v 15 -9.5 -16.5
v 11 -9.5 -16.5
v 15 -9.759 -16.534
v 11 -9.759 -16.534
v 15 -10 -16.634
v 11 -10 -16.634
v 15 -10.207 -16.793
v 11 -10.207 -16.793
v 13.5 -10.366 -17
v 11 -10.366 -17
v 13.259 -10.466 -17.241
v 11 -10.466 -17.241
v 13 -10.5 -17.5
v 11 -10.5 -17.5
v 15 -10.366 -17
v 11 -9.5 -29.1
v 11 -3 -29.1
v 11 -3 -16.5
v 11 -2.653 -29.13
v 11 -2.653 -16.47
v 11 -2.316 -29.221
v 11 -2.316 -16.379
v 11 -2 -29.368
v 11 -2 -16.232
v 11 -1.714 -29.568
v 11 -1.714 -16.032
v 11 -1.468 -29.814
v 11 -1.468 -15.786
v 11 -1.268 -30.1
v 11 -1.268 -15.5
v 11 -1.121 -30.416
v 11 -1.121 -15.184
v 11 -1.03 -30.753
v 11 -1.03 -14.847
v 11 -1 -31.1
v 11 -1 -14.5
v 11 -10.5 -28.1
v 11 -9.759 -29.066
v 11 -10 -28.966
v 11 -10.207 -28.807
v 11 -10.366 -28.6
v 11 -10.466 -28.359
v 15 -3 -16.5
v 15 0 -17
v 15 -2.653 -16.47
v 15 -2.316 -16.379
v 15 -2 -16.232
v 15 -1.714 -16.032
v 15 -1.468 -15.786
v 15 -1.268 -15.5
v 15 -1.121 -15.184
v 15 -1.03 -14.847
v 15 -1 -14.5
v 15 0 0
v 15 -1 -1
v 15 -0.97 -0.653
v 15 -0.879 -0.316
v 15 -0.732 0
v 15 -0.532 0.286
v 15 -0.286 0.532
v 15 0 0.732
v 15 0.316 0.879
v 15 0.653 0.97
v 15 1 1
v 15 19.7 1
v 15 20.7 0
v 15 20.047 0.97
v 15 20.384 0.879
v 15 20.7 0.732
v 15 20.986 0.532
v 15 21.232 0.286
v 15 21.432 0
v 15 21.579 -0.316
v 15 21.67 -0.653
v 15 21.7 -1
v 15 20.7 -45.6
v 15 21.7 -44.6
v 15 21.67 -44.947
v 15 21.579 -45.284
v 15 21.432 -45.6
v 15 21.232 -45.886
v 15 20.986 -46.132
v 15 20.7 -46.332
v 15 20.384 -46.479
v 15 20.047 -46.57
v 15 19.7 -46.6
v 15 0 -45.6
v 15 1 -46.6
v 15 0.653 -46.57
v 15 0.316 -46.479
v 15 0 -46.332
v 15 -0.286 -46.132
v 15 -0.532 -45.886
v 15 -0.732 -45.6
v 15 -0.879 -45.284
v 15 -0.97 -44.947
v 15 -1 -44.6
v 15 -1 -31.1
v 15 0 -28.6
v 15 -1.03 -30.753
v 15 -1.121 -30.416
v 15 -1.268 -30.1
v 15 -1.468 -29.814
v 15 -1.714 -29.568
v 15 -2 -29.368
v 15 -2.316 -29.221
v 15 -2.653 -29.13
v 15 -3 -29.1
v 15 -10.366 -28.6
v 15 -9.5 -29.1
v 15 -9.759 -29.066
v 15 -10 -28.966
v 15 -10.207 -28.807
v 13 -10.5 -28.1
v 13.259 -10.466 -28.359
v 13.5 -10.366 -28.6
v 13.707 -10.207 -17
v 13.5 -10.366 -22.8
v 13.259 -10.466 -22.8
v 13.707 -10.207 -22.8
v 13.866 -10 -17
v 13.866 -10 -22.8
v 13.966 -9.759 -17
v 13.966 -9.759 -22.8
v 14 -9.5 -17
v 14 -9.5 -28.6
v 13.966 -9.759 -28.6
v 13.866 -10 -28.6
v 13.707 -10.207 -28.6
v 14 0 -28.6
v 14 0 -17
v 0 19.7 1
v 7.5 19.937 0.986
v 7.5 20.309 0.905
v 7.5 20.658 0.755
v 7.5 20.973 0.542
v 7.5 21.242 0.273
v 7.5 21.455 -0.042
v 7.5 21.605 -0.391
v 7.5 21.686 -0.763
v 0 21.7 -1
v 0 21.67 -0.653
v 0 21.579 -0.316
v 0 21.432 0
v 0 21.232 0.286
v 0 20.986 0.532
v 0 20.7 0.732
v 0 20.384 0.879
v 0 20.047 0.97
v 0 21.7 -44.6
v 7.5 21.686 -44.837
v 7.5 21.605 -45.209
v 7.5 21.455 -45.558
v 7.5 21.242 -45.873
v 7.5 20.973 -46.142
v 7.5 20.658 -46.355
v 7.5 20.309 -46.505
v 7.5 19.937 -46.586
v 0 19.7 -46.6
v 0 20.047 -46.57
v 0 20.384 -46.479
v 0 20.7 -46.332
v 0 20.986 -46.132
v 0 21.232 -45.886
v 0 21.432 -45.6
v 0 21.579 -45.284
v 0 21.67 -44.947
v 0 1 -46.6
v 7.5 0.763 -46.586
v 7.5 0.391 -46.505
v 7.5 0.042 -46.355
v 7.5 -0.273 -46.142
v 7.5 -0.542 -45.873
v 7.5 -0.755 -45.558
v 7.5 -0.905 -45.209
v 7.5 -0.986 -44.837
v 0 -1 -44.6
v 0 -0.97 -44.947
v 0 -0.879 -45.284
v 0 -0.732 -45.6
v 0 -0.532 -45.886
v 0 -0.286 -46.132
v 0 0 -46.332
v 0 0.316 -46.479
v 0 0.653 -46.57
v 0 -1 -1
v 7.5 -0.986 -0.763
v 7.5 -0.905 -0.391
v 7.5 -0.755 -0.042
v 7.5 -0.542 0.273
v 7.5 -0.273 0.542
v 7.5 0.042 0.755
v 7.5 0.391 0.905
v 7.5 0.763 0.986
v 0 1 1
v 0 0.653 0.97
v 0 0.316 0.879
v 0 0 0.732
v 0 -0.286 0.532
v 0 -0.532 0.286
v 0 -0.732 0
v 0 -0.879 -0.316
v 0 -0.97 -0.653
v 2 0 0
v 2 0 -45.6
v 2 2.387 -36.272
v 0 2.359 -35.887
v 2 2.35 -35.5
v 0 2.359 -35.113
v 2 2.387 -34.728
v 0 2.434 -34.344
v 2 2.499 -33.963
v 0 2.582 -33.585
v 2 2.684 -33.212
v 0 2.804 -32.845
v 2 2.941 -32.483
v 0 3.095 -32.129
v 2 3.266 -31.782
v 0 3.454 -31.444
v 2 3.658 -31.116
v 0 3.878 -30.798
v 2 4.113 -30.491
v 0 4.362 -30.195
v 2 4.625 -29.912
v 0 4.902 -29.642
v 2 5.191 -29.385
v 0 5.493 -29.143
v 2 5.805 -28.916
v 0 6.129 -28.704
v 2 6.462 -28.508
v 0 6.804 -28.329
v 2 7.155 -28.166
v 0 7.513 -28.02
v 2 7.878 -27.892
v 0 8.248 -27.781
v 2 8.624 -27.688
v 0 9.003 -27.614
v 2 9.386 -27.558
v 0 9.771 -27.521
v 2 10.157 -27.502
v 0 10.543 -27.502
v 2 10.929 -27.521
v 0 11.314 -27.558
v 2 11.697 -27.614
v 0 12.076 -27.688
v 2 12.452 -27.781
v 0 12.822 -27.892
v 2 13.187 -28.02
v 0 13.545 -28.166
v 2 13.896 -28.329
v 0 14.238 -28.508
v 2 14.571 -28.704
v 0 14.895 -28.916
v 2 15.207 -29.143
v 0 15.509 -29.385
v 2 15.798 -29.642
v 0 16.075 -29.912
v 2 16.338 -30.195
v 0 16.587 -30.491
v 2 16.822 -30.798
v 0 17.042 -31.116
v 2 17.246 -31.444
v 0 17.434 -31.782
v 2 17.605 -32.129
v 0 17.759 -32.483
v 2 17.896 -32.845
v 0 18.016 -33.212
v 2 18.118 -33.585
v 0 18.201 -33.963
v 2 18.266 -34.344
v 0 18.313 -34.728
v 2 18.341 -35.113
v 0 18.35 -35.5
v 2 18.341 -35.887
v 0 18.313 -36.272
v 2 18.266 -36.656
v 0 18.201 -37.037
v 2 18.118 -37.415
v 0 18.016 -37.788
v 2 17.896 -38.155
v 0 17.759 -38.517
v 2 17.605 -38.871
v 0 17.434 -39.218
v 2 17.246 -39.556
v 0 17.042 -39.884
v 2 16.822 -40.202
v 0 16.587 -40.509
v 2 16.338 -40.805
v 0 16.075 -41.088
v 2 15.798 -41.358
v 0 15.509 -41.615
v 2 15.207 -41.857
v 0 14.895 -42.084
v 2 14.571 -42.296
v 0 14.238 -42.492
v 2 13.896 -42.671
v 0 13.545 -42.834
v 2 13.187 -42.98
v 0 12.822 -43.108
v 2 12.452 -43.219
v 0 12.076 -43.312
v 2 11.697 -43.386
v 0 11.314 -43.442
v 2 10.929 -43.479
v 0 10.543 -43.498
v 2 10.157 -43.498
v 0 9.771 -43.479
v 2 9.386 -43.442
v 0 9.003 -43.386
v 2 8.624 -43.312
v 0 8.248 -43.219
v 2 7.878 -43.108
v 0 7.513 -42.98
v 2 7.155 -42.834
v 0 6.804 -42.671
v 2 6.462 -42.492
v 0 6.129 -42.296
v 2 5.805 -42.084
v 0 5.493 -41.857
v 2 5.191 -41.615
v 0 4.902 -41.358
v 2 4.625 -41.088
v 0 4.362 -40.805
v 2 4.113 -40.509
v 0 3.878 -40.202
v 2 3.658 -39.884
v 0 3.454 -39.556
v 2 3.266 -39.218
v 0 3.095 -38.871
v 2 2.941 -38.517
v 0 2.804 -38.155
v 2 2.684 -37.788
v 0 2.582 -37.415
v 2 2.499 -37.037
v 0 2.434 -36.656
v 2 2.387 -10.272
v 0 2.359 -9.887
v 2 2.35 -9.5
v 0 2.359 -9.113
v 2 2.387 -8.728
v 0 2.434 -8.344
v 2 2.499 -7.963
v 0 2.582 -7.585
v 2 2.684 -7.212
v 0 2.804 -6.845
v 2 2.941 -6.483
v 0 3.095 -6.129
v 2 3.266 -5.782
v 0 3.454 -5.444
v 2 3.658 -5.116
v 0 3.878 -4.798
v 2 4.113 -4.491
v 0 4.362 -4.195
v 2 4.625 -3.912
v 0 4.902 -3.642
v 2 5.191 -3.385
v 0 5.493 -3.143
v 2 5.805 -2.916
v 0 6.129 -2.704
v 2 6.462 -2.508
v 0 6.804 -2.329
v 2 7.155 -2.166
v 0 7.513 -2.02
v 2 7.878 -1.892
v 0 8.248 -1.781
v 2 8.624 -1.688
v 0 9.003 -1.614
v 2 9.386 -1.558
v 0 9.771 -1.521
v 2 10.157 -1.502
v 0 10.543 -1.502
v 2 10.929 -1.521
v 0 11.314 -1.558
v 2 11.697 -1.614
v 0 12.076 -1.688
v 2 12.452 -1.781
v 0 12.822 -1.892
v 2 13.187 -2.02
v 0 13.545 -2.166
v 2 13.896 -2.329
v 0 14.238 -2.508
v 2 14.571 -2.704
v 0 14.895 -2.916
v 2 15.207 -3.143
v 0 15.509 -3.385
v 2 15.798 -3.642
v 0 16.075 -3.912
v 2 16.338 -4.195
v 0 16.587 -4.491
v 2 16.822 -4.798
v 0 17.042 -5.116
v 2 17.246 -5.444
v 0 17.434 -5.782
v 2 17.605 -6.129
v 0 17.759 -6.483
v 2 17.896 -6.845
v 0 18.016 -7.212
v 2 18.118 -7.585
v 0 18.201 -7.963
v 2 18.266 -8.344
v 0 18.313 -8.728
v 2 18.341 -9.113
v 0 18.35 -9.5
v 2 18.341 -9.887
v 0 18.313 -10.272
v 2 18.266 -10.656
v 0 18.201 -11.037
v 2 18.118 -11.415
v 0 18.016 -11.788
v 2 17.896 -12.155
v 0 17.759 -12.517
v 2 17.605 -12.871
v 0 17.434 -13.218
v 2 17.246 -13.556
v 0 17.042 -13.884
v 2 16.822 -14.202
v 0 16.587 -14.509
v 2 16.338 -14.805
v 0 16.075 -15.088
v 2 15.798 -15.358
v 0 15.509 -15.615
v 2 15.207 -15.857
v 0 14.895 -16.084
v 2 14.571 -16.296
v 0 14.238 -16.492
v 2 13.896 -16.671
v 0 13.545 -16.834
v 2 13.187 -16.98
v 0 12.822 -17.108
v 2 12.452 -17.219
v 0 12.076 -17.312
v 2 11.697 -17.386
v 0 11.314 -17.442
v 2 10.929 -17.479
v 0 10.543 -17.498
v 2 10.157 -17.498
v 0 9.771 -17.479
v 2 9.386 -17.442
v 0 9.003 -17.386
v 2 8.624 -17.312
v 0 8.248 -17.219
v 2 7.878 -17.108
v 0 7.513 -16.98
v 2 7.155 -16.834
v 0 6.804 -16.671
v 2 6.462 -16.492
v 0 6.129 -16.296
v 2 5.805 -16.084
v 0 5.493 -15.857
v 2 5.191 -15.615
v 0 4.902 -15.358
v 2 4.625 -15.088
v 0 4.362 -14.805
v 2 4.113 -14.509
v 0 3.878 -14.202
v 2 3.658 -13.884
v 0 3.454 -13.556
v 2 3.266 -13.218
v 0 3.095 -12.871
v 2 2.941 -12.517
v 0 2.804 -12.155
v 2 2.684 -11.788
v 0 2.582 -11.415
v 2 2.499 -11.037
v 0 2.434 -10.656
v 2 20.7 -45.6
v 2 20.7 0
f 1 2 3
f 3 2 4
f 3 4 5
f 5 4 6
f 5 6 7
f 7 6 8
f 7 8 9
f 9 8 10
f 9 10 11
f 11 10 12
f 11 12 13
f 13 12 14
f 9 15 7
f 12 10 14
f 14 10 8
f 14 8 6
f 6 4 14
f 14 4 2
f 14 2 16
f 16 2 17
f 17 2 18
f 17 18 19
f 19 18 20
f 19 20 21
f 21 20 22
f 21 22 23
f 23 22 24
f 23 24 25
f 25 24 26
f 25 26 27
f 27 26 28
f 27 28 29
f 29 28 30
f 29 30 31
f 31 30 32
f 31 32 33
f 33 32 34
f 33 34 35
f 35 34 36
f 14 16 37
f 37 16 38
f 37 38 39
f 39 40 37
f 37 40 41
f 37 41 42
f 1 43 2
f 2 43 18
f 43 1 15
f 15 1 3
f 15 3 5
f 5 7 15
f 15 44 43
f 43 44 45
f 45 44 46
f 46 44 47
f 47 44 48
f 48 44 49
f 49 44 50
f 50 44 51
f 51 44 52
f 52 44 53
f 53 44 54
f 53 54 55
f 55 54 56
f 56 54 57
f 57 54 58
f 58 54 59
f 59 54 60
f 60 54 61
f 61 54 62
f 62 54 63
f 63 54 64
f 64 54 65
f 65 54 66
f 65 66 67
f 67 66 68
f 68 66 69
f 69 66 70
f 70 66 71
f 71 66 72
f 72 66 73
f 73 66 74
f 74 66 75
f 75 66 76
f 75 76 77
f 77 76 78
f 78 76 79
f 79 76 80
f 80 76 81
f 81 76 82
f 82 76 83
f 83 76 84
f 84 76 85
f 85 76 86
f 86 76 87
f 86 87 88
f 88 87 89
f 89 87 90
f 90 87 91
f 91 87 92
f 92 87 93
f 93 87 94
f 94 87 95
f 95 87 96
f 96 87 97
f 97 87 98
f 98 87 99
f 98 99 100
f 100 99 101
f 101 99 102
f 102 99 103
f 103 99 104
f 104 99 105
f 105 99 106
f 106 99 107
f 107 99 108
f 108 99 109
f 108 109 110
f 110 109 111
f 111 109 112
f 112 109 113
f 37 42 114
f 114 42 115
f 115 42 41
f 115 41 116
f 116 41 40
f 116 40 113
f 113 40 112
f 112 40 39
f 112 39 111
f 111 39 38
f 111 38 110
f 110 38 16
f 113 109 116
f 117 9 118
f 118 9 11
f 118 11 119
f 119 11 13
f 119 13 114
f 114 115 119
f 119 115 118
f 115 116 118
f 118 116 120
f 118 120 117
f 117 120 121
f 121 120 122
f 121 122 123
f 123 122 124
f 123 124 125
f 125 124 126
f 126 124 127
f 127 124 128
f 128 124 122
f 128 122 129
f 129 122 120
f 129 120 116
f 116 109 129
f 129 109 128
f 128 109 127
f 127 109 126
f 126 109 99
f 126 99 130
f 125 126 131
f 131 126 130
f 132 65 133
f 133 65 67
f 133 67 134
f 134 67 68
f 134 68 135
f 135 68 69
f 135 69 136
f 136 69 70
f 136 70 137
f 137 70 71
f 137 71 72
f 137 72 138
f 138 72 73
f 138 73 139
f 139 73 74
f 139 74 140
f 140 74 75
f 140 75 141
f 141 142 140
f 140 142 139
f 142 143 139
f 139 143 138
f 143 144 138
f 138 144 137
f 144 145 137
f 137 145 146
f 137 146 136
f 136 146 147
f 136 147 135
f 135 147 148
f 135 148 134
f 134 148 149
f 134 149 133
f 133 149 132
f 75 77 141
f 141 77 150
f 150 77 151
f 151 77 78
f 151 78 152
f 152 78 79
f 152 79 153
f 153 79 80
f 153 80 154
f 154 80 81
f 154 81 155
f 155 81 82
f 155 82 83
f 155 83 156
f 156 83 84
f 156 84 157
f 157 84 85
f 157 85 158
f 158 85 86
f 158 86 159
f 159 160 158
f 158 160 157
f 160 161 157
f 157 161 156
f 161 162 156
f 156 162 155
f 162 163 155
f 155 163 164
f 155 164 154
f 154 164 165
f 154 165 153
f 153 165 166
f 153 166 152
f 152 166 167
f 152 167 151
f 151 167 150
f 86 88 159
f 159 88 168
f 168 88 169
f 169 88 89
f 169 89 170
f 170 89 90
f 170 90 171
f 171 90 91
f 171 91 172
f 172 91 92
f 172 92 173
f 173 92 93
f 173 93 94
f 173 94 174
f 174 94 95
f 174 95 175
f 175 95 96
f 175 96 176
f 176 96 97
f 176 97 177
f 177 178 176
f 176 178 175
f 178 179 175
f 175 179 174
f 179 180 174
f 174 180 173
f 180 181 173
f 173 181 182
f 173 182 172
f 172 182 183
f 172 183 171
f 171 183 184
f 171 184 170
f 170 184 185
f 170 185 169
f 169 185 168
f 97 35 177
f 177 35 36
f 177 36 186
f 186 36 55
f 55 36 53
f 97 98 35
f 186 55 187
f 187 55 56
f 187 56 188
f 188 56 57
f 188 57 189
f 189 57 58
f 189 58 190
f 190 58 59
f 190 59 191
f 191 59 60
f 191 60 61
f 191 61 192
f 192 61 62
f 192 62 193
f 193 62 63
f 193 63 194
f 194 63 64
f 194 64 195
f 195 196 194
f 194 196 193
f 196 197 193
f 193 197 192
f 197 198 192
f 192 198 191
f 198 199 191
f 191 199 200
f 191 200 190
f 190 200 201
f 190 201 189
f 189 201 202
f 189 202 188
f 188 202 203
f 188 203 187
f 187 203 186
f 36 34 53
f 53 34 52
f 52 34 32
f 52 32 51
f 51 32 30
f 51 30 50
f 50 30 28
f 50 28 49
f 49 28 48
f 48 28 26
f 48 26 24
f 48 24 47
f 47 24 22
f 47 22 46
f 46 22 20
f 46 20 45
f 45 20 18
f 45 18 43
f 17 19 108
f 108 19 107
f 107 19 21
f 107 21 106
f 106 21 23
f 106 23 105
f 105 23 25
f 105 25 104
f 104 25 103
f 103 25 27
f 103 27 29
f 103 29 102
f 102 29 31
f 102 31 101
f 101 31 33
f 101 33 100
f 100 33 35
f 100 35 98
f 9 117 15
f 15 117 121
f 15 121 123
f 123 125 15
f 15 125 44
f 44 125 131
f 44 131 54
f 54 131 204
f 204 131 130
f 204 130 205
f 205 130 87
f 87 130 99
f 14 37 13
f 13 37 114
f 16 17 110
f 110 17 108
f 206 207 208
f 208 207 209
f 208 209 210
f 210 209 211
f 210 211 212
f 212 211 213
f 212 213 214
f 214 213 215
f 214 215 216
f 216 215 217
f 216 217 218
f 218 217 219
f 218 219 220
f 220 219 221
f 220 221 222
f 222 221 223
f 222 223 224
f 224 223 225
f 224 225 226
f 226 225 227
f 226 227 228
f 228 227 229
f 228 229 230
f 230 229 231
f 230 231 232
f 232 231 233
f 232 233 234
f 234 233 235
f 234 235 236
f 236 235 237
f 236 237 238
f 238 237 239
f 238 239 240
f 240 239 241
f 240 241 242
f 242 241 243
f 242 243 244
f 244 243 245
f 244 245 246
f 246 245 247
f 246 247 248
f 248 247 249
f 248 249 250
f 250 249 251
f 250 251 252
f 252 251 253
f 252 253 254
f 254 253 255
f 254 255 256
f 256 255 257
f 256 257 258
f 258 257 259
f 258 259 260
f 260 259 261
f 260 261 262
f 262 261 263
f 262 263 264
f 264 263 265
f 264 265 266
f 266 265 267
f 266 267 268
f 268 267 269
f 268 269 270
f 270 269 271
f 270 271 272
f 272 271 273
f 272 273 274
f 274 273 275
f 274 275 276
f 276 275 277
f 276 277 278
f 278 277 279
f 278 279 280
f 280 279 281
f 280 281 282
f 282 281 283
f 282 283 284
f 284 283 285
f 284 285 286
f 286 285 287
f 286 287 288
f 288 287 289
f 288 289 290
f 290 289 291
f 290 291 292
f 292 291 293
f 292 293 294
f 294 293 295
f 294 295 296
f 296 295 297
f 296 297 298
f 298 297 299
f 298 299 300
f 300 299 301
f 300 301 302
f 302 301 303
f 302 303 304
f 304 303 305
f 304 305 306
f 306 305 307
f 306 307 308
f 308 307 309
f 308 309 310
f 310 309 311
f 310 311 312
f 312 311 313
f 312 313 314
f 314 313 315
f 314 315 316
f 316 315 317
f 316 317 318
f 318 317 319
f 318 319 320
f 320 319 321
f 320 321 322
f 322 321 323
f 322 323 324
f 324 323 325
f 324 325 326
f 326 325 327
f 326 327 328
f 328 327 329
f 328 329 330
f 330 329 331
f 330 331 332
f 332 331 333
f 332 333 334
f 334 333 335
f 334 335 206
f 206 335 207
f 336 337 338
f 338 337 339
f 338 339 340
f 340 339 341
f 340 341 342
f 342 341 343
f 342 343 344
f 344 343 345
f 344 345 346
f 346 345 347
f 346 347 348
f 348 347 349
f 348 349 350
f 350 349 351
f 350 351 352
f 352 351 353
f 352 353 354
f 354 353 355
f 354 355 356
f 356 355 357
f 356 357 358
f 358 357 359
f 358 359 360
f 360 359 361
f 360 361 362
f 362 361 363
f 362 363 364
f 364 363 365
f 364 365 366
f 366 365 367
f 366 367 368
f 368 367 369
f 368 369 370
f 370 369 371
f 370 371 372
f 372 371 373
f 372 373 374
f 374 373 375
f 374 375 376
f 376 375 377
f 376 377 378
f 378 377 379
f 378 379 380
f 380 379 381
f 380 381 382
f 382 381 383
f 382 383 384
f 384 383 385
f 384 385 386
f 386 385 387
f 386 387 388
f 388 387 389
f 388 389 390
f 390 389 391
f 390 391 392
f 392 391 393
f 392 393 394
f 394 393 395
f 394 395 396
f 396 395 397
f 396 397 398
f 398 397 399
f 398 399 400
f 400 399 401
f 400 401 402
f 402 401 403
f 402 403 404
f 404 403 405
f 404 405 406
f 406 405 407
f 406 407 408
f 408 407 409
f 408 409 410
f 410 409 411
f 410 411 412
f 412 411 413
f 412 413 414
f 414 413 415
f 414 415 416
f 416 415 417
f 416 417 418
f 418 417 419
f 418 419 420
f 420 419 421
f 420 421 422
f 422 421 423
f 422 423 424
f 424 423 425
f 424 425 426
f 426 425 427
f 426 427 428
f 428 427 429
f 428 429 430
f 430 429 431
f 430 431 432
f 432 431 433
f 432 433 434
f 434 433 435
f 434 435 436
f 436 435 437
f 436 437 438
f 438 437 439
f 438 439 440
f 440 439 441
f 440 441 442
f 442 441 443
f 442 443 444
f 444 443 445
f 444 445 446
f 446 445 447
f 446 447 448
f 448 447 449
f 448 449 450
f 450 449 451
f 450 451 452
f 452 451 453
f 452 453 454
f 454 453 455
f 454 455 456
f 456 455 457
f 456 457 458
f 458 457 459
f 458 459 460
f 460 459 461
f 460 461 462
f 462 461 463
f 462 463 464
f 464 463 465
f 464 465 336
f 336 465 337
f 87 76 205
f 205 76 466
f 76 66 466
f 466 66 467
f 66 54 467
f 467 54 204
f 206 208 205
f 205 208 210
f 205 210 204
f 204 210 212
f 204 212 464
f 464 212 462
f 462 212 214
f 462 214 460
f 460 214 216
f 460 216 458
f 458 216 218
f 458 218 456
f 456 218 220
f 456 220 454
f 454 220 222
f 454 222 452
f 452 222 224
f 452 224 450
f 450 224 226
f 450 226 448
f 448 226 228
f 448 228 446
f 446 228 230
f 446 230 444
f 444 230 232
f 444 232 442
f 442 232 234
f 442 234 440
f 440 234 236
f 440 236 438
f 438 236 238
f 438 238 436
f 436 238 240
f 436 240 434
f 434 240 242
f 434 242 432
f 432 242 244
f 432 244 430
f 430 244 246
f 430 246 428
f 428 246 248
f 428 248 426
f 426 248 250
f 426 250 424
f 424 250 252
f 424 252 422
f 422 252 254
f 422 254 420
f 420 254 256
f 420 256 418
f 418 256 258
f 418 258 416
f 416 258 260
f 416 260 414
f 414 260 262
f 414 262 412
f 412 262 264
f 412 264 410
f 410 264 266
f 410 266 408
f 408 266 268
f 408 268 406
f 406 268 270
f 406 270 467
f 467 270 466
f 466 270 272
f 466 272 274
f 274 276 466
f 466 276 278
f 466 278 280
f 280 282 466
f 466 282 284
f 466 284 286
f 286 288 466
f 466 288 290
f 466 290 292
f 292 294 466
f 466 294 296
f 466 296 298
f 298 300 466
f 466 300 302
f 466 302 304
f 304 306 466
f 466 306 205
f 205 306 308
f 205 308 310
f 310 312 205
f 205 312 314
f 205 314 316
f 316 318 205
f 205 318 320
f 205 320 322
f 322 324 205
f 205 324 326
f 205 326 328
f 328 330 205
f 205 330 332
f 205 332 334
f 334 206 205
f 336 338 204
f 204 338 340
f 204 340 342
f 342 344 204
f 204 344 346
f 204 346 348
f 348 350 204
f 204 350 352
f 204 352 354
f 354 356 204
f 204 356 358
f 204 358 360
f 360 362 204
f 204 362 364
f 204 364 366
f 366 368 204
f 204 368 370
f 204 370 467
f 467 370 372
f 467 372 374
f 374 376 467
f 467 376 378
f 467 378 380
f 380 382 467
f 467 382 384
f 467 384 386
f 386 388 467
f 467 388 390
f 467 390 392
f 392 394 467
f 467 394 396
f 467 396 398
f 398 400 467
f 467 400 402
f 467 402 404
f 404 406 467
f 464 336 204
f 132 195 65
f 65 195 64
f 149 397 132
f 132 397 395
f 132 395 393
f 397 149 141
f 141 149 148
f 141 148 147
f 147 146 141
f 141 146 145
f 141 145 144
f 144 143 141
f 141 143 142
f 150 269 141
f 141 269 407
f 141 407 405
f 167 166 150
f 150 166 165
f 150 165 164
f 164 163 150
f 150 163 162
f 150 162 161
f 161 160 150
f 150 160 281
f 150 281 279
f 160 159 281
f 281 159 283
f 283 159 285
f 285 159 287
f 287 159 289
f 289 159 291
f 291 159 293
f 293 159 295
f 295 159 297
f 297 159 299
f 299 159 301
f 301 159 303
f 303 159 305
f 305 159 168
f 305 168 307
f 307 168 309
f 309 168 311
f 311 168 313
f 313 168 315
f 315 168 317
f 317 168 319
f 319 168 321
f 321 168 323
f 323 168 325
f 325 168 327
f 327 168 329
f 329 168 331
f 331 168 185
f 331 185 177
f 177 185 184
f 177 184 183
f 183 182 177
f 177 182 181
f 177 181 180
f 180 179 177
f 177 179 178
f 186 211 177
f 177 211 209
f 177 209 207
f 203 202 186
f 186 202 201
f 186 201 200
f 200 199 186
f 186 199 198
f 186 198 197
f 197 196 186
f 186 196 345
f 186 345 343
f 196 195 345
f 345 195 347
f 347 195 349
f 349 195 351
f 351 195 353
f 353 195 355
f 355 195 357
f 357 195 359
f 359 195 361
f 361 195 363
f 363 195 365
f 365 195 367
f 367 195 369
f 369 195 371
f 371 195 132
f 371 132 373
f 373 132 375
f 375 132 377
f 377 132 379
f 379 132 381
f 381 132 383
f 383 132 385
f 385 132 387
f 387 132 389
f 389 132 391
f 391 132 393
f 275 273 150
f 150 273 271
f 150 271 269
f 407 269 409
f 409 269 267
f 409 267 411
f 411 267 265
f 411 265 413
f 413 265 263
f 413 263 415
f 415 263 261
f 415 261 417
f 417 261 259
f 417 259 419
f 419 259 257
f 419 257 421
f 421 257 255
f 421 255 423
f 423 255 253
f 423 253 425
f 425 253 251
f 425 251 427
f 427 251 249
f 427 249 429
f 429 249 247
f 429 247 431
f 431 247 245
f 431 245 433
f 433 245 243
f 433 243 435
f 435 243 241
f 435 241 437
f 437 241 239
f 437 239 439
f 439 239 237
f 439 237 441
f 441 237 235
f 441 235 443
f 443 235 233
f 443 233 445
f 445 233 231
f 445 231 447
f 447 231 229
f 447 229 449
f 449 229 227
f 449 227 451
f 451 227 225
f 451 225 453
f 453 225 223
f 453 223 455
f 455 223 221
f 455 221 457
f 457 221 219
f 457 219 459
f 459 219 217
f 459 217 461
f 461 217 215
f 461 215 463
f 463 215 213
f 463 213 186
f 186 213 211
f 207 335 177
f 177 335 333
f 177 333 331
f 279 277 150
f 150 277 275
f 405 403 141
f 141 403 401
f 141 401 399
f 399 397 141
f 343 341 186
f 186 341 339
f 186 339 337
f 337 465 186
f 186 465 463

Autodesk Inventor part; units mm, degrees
ref_plane "YZ Plane" through (0, 0, 0) normal (1, 0, 0) x (0, 1, 0)
ref_plane "XZ Plane" through (0, 0, 0) normal (0, 1, 0) x (-1, 0, 0)
ref_plane "XY Plane" through (0, 0, 0) normal (0, 0, 1) x (1, 0, 0)
sketch "Sketch1" plane through (0, 0, 0) normal (1, 0, 0) x (0, 1, 0)
  line L0 (0, 0) -> (20.7, 0)
  line L1 (20.7, 0) -> (20.7, -45.6)
  line L2 (20.7, -45.6) -> (0, -45.6)
  line L3 (0, -45.6) -> (0, 0)
  circle A0 centre (10.35, -9.5) radius 8
  circle A1 centre (10.35, -35.5) radius 8
  line L4 (21.7, -46.6) -> (21.7, 1)
  line L5 (21.7, 1) -> (-1, 1)
  line L6 (-1, 1) -> (-1, -46.6)
  line L7 (-1, -46.6) -> (21.7, -46.6)
  dimension "Breite" = 20.7
  dimension "Länge" = 45.6
  dimension "Kreise1" = 16
  dimension "BreiteBisKreise1" = 9.5
  dimension "LangeBisKreise" = 10.35
  dimension "KreiseCenter1BisKreiseCenter2" = 26
  dimension "Kreise2" = 16
  dimension "LangeBisKreise2" = 10.35
  dimension "d14" = 1
extrude "Extrusion1" add sketch "Sketch1" along normal blind 15 contours L0 L1 L2 L3 | A0 | A1
extrude "Extrusion2" add sketch "Sketch1" along normal up to surface (15 mm away) contours L7 L6 L5 L4
sketch "Sketch2" plane through (15, 0, 0) normal (1, 0, 0) x (0, 0, -1)
  line L0 (0, 20.7) -> (45.6, 20.7) projected
  line L1 (56.12, 0) -> (-10.52, 0) projected
  line L2 (45.6, 20.7) -> (45.6, 0) projected
  line L3 (0, -5.54) -> (0, 26.24) projected
  line L4 (0, 20.7) -> (45.6, 20.7)
  line L5 (45.6, 20.7) -> (45.6, 0)
  line L6 (45.6, 0) -> (0, 0)
  line L7 (0, 0) -> (0, 20.7)
extrude "Extrusion3" cut sketch "Sketch2" against normal blind 13
extrude "Extrusion4" cut sketch "Sketch1" along normal blind 11 contours A0 | A1
sketch "Sketch3" plane through (15, 0, 0) normal (1, 0, 0) x (0, 0, -1)
  line L0 (45.6, 20.7) -> (45.6, 0) projected
  line L1 (45.6, 0) -> (0, 0) projected
  line L2 (0, 0) -> (0, 20.7) projected
  line L3 (0, 20.7) -> (45.6, 20.7) projected
  line L4 (-1, 21.7) -> (46.6, 21.7) projected
  line L5 (-1, -1) -> (-1, 21.7) projected
  line L6 (46.6, -1) -> (-1, -1) projected
  line L7 (46.6, 21.7) -> (46.6, -1) projected
  line L8 (0, 0) -> (0, 20.7) projected
  line L9 (0, 0) -> (16.5, 0)
  line L10 (45.6, 0) -> (0, 0) projected
  line L11 (45.6, 20.7) -> (45.6, 0) projected
  line L12 (45.6, 0) -> (29.1, 0)
  line L13 (-1, -1) -> (46.6, -1) projected
  line L14 (16.5, -1) -> (16.5, -10.5)
  line L15 (29.1, -1) -> (29.1, -10.5)
  line L16 (16.5, -10.5) -> (29.1, -10.5)
  dimension "d21" = 16.5
  dimension "d22" = 16.5
  dimension "d23" = 9.5
  dimension "d24" = 1
  dimension "d26" = 12.6
extrude "Extrusion5" add sketch "Sketch3" against normal blind 4 contours L6 L15 L16 L14
sketch "Sketch4" plane through (15, 0, 0) normal (1, 0, 0) x (0, 0, -1)
  line L0 (45.6, 20.7) -> (45.6, 0) projected
  line L1 (45.6, 0) -> (0, 0) projected
  line L2 (0, 0) -> (0, 20.7) projected
  line L3 (0, 20.7) -> (45.6, 20.7) projected
  line L4 (-1, 21.7) -> (46.6, 21.7) projected
  line L5 (-1, -1) -> (-1, 21.7) projected
  line L6 (16.5, -1) -> (-1, -1) projected
  line L7 (16.5, -1) -> (16.5, -10.5) projected
  line L8 (16.5, -10.5) -> (29.1, -10.5) projected
  line L9 (29.1, -10.5) -> (29.1, -1) projected
  line L10 (46.6, -1) -> (29.1, -1) projected
  line L11 (46.6, 21.7) -> (46.6, -1) projected
  line L12 (29.1, -10.5) -> (29.1, -1) projected
  line L13 (29.1, -10.5) -> (16.5, -10.5) projected
  line L14 (29.1, -1) -> (16.5, -1)
  line L15 (16.5, -1) -> (16.5, -10.5)
  line L16 (16.5, -10.5) -> (29.1, -10.5)
  line L17 (29.1, -10.5) -> (29.1, -1)
  line L18 (17, -1.5) -> (28.6, -1.5)
  line L19 (28.6, -1.5) -> (28.6, -10)
  line L20 (28.6, -10) -> (17, -10)
  line L21 (17, -10) -> (17, -1.5)
  line L22 (17, -1.5) -> (17, 0)
  line L23 (45.6, 0) -> (0, 0) projected
  line L24 (28.6, -1.5) -> (28.6, 0)
  line L25 (17, 0) -> (28.6, 0)
  line L26 (17, -10) -> (17, -10.5)
  line L27 (28.6, -10) -> (28.6, -10.5)
  dimension "d29" = 0.5
extrude "Extrusion6" cut sketch "Sketch4" against normal blind 1 contours L24 L14 L22 L1 | L24 L18 L22 L14 | L19 L20 L21 L18 | L27 L8 L26 L20
fillet "Fillet1" radius 2 2 edges at (13, -1, -29.1) (13, -1, -16.5)
fillet "Fillet2" radius 2 4 edges at (7.5, -1, 1) (7.5, -1, -46.6) (7.5, 21.7, -46.6) (7.5, 21.7, 1)
fillet "Fillet3" radius 1 1 edges at (14, -10.5, -22.8)
fillet "Fillet4" radius 1 2 edges at (13, -10.5, -29.1) (13, -10.5, -16.5)
properties part number "Ultaschal Sensor Gehäuse"
